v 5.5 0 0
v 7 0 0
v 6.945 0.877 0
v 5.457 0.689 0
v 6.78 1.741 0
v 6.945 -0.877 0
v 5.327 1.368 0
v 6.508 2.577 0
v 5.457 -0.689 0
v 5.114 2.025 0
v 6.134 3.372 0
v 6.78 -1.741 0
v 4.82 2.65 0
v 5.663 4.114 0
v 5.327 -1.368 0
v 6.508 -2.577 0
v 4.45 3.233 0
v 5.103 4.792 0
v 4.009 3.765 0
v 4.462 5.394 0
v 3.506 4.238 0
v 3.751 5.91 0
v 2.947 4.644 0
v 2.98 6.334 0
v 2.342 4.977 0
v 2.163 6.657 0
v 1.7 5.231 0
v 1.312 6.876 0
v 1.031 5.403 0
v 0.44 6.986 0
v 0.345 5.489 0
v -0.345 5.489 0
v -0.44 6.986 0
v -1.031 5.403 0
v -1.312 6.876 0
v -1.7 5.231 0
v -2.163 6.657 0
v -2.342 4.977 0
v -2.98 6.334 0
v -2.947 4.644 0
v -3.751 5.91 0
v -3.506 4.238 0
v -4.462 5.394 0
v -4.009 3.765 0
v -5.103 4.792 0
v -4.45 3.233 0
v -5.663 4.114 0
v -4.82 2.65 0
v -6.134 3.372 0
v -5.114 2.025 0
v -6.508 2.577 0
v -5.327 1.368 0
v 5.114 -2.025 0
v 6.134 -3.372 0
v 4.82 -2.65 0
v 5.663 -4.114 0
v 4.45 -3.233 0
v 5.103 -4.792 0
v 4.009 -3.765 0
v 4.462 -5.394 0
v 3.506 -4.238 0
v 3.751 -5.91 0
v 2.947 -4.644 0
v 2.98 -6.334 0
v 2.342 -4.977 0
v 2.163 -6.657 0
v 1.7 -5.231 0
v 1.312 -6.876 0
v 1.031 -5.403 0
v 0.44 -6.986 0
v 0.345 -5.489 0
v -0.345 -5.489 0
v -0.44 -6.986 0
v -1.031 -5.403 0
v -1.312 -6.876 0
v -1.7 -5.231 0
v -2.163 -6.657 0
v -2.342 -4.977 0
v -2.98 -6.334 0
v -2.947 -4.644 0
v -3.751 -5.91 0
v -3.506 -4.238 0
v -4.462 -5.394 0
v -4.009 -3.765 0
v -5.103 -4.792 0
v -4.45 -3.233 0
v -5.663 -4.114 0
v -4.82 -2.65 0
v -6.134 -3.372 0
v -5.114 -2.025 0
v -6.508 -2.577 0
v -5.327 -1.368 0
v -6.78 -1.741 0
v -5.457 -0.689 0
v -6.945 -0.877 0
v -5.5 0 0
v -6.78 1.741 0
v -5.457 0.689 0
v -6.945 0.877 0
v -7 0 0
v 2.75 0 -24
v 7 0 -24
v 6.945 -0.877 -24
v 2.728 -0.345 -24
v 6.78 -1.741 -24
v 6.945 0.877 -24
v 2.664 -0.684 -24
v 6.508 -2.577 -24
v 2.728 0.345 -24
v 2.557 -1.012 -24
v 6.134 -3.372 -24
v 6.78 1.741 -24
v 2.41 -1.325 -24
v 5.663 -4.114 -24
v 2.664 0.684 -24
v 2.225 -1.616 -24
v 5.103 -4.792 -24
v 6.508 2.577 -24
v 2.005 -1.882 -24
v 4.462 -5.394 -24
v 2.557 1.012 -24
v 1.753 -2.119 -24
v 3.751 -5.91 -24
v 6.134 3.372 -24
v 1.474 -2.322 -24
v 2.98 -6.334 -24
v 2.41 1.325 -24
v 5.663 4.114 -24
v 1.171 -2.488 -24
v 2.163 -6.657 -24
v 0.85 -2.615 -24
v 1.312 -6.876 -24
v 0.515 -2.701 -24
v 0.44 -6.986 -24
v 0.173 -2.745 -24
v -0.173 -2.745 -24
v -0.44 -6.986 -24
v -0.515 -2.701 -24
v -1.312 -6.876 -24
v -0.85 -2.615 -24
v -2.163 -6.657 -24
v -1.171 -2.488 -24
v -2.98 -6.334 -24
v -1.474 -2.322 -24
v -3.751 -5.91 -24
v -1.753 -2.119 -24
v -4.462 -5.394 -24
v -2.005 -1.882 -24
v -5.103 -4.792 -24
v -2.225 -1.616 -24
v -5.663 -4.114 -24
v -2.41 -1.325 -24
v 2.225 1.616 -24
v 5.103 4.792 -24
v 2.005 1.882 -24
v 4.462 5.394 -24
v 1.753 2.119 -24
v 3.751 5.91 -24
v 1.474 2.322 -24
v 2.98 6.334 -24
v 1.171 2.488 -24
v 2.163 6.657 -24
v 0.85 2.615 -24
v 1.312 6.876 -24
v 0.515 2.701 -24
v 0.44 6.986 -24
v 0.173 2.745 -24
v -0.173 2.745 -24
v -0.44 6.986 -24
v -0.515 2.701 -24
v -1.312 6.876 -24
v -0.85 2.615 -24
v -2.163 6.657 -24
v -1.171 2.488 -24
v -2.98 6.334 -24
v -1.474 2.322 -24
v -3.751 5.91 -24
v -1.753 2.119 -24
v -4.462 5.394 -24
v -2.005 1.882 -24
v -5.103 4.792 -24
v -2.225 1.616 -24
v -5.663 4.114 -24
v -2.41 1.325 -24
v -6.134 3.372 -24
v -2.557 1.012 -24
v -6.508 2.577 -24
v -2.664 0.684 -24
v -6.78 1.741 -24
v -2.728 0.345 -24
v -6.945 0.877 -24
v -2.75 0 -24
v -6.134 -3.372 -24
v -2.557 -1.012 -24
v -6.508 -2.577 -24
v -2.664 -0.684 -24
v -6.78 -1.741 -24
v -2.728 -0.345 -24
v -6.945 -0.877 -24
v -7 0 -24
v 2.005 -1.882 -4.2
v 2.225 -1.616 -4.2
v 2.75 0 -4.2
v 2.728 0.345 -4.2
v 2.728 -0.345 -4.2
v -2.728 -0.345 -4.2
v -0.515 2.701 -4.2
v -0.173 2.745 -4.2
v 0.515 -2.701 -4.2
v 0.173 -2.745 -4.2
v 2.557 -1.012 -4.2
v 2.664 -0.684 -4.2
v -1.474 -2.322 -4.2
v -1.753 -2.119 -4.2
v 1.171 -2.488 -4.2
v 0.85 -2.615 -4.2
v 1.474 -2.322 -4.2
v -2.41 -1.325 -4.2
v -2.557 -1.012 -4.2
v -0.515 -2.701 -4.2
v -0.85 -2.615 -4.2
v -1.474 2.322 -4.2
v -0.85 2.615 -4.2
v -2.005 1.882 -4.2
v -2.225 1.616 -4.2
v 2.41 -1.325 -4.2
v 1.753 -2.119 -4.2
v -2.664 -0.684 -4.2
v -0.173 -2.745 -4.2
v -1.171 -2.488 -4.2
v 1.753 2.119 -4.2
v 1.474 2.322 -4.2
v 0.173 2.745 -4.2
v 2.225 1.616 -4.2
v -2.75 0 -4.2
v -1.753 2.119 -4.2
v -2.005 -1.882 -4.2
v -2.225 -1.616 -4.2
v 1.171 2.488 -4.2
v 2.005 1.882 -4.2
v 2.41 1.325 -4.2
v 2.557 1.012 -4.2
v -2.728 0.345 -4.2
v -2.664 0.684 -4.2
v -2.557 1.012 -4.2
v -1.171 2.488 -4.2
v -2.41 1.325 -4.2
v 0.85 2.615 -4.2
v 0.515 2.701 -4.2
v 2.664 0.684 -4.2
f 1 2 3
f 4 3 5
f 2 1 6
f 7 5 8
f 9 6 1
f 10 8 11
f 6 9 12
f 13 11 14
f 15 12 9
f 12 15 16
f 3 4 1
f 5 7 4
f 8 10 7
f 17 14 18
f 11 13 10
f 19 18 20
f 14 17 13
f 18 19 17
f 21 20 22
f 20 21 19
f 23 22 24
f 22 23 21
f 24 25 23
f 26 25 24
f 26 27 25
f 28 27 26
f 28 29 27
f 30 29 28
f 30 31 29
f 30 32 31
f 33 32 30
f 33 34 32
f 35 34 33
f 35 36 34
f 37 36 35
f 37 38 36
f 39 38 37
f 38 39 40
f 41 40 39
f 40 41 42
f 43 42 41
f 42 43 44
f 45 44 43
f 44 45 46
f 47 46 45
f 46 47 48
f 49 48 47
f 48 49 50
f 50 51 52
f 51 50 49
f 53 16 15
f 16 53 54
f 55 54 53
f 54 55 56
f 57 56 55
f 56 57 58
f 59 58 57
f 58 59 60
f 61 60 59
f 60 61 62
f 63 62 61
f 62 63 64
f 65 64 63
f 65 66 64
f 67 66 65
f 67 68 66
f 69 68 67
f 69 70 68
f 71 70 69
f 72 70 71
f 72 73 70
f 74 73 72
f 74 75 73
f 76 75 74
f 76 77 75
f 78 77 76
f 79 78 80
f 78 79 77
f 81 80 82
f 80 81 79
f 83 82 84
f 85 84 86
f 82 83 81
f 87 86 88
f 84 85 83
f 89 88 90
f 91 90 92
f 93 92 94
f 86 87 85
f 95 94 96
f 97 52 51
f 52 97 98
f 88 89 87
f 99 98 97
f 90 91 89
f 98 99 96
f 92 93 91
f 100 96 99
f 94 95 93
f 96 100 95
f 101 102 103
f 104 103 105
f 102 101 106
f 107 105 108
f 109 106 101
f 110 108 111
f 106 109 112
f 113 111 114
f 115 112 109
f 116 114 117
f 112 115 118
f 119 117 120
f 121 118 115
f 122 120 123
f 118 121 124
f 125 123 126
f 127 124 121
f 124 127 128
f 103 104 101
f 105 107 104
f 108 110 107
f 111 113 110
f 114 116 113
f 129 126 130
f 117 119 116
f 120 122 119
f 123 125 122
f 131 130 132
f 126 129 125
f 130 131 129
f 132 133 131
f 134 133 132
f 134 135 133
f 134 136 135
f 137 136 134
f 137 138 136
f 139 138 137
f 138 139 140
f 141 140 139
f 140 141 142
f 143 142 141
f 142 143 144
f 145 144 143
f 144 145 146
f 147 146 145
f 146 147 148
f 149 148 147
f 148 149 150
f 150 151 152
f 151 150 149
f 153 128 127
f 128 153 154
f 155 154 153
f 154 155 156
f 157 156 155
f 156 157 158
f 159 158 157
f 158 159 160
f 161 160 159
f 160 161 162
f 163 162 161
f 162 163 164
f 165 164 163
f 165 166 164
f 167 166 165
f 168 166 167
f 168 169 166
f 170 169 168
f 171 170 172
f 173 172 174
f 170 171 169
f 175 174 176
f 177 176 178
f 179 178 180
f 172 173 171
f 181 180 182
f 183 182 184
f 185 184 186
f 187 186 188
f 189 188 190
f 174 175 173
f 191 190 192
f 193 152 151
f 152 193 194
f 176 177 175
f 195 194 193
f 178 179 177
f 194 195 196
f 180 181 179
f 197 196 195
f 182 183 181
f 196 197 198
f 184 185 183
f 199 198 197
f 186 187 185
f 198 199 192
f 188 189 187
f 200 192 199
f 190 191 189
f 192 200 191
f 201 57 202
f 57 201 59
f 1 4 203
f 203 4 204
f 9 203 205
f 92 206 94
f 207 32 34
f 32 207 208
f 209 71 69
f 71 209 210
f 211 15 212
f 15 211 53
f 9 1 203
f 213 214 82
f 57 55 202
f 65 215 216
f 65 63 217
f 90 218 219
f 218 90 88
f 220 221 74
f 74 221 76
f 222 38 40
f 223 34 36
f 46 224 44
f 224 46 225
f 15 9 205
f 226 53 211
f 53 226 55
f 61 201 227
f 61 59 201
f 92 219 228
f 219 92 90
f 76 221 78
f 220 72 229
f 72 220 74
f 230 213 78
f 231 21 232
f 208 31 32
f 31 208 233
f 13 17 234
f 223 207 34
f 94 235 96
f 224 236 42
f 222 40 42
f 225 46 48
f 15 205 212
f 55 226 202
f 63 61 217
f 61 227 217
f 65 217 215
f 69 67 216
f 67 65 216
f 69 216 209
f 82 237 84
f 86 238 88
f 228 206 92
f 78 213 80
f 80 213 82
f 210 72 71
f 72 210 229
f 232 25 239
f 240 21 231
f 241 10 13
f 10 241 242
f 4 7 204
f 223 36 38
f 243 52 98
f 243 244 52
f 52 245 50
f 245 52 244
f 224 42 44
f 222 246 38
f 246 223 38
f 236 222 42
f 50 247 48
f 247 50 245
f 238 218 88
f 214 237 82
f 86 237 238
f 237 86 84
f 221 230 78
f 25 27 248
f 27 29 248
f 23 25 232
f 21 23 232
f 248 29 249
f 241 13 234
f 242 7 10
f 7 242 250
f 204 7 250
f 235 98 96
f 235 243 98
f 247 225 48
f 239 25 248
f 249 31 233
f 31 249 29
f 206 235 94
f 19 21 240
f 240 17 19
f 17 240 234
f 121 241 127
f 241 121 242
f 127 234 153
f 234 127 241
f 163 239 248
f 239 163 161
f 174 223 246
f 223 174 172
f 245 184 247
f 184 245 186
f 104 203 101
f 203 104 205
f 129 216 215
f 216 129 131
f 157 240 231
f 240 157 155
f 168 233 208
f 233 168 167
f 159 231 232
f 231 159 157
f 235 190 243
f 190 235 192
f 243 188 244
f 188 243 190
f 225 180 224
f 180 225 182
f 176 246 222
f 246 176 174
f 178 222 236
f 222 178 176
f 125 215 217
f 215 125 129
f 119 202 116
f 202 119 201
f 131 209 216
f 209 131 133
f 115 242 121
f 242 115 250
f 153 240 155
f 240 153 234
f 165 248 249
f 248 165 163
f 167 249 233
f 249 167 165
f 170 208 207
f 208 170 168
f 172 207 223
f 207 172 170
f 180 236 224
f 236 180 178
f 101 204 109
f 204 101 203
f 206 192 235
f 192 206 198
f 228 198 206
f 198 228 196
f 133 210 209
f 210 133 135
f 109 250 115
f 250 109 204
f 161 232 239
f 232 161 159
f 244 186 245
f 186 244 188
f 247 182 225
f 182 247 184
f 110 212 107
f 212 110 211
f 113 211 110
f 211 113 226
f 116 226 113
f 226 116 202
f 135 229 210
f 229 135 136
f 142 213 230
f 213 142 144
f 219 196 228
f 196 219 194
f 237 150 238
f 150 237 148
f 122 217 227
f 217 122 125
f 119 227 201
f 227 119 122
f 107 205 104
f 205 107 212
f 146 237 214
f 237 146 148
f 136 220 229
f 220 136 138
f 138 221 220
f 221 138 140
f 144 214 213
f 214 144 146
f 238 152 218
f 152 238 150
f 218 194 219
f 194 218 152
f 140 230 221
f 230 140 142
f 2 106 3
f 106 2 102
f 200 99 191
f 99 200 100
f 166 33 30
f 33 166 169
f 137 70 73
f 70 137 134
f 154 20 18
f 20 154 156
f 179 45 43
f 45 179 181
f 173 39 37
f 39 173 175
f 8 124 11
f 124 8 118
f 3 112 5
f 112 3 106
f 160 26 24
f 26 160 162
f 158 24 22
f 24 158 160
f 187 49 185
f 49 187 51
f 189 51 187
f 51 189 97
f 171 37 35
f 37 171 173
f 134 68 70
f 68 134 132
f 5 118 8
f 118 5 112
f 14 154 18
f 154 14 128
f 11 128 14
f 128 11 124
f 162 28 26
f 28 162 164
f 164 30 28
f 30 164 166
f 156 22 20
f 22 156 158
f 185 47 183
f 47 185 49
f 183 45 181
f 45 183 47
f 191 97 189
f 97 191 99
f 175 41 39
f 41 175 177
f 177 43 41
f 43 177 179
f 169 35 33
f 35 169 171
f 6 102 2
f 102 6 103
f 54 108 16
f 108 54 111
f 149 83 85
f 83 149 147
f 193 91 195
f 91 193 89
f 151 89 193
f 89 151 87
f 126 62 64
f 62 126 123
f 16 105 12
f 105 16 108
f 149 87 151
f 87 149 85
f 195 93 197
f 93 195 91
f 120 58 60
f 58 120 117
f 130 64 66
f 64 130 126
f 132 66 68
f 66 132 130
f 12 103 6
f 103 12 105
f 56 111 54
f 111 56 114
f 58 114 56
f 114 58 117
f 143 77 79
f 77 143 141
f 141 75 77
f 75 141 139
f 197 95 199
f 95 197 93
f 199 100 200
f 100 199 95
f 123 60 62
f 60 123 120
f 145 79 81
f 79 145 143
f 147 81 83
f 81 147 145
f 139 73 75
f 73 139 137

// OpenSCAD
$fn = 50;


difference() {
	union() {
		translate(v = [0, 0, -24.0000000000]) {
			cylinder(h = 24, r = 7.0000000000);
		}
		cylinder(h = 0, r = 13.0000000000);
	}
	union() {
		translate(v = [0, 0, 0]) {
			rotate(a = [0, 0, 0]) {
				difference() {
					union() {
						#translate(v = [0, 0, -24.0000000000]) {
							cylinder(h = 24, r = 2.2500000000);
						}
						#translate(v = [0, 0, -4.2000000000]) {
							cylinder(h = 4.2000000000, r1 = 2.7500000000, r2 = 5.5000000000);
						}
						#translate(v = [0, 0, -24.0000000000]) {
							cylinder(h = 24, r = 2.7500000000);
						}
						#translate(v = [0, 0, -24.0000000000]) {
							cylinder(h = 24, r = 2.2500000000);
						}
					}
					union();
				}
			}
		}
	}
}
